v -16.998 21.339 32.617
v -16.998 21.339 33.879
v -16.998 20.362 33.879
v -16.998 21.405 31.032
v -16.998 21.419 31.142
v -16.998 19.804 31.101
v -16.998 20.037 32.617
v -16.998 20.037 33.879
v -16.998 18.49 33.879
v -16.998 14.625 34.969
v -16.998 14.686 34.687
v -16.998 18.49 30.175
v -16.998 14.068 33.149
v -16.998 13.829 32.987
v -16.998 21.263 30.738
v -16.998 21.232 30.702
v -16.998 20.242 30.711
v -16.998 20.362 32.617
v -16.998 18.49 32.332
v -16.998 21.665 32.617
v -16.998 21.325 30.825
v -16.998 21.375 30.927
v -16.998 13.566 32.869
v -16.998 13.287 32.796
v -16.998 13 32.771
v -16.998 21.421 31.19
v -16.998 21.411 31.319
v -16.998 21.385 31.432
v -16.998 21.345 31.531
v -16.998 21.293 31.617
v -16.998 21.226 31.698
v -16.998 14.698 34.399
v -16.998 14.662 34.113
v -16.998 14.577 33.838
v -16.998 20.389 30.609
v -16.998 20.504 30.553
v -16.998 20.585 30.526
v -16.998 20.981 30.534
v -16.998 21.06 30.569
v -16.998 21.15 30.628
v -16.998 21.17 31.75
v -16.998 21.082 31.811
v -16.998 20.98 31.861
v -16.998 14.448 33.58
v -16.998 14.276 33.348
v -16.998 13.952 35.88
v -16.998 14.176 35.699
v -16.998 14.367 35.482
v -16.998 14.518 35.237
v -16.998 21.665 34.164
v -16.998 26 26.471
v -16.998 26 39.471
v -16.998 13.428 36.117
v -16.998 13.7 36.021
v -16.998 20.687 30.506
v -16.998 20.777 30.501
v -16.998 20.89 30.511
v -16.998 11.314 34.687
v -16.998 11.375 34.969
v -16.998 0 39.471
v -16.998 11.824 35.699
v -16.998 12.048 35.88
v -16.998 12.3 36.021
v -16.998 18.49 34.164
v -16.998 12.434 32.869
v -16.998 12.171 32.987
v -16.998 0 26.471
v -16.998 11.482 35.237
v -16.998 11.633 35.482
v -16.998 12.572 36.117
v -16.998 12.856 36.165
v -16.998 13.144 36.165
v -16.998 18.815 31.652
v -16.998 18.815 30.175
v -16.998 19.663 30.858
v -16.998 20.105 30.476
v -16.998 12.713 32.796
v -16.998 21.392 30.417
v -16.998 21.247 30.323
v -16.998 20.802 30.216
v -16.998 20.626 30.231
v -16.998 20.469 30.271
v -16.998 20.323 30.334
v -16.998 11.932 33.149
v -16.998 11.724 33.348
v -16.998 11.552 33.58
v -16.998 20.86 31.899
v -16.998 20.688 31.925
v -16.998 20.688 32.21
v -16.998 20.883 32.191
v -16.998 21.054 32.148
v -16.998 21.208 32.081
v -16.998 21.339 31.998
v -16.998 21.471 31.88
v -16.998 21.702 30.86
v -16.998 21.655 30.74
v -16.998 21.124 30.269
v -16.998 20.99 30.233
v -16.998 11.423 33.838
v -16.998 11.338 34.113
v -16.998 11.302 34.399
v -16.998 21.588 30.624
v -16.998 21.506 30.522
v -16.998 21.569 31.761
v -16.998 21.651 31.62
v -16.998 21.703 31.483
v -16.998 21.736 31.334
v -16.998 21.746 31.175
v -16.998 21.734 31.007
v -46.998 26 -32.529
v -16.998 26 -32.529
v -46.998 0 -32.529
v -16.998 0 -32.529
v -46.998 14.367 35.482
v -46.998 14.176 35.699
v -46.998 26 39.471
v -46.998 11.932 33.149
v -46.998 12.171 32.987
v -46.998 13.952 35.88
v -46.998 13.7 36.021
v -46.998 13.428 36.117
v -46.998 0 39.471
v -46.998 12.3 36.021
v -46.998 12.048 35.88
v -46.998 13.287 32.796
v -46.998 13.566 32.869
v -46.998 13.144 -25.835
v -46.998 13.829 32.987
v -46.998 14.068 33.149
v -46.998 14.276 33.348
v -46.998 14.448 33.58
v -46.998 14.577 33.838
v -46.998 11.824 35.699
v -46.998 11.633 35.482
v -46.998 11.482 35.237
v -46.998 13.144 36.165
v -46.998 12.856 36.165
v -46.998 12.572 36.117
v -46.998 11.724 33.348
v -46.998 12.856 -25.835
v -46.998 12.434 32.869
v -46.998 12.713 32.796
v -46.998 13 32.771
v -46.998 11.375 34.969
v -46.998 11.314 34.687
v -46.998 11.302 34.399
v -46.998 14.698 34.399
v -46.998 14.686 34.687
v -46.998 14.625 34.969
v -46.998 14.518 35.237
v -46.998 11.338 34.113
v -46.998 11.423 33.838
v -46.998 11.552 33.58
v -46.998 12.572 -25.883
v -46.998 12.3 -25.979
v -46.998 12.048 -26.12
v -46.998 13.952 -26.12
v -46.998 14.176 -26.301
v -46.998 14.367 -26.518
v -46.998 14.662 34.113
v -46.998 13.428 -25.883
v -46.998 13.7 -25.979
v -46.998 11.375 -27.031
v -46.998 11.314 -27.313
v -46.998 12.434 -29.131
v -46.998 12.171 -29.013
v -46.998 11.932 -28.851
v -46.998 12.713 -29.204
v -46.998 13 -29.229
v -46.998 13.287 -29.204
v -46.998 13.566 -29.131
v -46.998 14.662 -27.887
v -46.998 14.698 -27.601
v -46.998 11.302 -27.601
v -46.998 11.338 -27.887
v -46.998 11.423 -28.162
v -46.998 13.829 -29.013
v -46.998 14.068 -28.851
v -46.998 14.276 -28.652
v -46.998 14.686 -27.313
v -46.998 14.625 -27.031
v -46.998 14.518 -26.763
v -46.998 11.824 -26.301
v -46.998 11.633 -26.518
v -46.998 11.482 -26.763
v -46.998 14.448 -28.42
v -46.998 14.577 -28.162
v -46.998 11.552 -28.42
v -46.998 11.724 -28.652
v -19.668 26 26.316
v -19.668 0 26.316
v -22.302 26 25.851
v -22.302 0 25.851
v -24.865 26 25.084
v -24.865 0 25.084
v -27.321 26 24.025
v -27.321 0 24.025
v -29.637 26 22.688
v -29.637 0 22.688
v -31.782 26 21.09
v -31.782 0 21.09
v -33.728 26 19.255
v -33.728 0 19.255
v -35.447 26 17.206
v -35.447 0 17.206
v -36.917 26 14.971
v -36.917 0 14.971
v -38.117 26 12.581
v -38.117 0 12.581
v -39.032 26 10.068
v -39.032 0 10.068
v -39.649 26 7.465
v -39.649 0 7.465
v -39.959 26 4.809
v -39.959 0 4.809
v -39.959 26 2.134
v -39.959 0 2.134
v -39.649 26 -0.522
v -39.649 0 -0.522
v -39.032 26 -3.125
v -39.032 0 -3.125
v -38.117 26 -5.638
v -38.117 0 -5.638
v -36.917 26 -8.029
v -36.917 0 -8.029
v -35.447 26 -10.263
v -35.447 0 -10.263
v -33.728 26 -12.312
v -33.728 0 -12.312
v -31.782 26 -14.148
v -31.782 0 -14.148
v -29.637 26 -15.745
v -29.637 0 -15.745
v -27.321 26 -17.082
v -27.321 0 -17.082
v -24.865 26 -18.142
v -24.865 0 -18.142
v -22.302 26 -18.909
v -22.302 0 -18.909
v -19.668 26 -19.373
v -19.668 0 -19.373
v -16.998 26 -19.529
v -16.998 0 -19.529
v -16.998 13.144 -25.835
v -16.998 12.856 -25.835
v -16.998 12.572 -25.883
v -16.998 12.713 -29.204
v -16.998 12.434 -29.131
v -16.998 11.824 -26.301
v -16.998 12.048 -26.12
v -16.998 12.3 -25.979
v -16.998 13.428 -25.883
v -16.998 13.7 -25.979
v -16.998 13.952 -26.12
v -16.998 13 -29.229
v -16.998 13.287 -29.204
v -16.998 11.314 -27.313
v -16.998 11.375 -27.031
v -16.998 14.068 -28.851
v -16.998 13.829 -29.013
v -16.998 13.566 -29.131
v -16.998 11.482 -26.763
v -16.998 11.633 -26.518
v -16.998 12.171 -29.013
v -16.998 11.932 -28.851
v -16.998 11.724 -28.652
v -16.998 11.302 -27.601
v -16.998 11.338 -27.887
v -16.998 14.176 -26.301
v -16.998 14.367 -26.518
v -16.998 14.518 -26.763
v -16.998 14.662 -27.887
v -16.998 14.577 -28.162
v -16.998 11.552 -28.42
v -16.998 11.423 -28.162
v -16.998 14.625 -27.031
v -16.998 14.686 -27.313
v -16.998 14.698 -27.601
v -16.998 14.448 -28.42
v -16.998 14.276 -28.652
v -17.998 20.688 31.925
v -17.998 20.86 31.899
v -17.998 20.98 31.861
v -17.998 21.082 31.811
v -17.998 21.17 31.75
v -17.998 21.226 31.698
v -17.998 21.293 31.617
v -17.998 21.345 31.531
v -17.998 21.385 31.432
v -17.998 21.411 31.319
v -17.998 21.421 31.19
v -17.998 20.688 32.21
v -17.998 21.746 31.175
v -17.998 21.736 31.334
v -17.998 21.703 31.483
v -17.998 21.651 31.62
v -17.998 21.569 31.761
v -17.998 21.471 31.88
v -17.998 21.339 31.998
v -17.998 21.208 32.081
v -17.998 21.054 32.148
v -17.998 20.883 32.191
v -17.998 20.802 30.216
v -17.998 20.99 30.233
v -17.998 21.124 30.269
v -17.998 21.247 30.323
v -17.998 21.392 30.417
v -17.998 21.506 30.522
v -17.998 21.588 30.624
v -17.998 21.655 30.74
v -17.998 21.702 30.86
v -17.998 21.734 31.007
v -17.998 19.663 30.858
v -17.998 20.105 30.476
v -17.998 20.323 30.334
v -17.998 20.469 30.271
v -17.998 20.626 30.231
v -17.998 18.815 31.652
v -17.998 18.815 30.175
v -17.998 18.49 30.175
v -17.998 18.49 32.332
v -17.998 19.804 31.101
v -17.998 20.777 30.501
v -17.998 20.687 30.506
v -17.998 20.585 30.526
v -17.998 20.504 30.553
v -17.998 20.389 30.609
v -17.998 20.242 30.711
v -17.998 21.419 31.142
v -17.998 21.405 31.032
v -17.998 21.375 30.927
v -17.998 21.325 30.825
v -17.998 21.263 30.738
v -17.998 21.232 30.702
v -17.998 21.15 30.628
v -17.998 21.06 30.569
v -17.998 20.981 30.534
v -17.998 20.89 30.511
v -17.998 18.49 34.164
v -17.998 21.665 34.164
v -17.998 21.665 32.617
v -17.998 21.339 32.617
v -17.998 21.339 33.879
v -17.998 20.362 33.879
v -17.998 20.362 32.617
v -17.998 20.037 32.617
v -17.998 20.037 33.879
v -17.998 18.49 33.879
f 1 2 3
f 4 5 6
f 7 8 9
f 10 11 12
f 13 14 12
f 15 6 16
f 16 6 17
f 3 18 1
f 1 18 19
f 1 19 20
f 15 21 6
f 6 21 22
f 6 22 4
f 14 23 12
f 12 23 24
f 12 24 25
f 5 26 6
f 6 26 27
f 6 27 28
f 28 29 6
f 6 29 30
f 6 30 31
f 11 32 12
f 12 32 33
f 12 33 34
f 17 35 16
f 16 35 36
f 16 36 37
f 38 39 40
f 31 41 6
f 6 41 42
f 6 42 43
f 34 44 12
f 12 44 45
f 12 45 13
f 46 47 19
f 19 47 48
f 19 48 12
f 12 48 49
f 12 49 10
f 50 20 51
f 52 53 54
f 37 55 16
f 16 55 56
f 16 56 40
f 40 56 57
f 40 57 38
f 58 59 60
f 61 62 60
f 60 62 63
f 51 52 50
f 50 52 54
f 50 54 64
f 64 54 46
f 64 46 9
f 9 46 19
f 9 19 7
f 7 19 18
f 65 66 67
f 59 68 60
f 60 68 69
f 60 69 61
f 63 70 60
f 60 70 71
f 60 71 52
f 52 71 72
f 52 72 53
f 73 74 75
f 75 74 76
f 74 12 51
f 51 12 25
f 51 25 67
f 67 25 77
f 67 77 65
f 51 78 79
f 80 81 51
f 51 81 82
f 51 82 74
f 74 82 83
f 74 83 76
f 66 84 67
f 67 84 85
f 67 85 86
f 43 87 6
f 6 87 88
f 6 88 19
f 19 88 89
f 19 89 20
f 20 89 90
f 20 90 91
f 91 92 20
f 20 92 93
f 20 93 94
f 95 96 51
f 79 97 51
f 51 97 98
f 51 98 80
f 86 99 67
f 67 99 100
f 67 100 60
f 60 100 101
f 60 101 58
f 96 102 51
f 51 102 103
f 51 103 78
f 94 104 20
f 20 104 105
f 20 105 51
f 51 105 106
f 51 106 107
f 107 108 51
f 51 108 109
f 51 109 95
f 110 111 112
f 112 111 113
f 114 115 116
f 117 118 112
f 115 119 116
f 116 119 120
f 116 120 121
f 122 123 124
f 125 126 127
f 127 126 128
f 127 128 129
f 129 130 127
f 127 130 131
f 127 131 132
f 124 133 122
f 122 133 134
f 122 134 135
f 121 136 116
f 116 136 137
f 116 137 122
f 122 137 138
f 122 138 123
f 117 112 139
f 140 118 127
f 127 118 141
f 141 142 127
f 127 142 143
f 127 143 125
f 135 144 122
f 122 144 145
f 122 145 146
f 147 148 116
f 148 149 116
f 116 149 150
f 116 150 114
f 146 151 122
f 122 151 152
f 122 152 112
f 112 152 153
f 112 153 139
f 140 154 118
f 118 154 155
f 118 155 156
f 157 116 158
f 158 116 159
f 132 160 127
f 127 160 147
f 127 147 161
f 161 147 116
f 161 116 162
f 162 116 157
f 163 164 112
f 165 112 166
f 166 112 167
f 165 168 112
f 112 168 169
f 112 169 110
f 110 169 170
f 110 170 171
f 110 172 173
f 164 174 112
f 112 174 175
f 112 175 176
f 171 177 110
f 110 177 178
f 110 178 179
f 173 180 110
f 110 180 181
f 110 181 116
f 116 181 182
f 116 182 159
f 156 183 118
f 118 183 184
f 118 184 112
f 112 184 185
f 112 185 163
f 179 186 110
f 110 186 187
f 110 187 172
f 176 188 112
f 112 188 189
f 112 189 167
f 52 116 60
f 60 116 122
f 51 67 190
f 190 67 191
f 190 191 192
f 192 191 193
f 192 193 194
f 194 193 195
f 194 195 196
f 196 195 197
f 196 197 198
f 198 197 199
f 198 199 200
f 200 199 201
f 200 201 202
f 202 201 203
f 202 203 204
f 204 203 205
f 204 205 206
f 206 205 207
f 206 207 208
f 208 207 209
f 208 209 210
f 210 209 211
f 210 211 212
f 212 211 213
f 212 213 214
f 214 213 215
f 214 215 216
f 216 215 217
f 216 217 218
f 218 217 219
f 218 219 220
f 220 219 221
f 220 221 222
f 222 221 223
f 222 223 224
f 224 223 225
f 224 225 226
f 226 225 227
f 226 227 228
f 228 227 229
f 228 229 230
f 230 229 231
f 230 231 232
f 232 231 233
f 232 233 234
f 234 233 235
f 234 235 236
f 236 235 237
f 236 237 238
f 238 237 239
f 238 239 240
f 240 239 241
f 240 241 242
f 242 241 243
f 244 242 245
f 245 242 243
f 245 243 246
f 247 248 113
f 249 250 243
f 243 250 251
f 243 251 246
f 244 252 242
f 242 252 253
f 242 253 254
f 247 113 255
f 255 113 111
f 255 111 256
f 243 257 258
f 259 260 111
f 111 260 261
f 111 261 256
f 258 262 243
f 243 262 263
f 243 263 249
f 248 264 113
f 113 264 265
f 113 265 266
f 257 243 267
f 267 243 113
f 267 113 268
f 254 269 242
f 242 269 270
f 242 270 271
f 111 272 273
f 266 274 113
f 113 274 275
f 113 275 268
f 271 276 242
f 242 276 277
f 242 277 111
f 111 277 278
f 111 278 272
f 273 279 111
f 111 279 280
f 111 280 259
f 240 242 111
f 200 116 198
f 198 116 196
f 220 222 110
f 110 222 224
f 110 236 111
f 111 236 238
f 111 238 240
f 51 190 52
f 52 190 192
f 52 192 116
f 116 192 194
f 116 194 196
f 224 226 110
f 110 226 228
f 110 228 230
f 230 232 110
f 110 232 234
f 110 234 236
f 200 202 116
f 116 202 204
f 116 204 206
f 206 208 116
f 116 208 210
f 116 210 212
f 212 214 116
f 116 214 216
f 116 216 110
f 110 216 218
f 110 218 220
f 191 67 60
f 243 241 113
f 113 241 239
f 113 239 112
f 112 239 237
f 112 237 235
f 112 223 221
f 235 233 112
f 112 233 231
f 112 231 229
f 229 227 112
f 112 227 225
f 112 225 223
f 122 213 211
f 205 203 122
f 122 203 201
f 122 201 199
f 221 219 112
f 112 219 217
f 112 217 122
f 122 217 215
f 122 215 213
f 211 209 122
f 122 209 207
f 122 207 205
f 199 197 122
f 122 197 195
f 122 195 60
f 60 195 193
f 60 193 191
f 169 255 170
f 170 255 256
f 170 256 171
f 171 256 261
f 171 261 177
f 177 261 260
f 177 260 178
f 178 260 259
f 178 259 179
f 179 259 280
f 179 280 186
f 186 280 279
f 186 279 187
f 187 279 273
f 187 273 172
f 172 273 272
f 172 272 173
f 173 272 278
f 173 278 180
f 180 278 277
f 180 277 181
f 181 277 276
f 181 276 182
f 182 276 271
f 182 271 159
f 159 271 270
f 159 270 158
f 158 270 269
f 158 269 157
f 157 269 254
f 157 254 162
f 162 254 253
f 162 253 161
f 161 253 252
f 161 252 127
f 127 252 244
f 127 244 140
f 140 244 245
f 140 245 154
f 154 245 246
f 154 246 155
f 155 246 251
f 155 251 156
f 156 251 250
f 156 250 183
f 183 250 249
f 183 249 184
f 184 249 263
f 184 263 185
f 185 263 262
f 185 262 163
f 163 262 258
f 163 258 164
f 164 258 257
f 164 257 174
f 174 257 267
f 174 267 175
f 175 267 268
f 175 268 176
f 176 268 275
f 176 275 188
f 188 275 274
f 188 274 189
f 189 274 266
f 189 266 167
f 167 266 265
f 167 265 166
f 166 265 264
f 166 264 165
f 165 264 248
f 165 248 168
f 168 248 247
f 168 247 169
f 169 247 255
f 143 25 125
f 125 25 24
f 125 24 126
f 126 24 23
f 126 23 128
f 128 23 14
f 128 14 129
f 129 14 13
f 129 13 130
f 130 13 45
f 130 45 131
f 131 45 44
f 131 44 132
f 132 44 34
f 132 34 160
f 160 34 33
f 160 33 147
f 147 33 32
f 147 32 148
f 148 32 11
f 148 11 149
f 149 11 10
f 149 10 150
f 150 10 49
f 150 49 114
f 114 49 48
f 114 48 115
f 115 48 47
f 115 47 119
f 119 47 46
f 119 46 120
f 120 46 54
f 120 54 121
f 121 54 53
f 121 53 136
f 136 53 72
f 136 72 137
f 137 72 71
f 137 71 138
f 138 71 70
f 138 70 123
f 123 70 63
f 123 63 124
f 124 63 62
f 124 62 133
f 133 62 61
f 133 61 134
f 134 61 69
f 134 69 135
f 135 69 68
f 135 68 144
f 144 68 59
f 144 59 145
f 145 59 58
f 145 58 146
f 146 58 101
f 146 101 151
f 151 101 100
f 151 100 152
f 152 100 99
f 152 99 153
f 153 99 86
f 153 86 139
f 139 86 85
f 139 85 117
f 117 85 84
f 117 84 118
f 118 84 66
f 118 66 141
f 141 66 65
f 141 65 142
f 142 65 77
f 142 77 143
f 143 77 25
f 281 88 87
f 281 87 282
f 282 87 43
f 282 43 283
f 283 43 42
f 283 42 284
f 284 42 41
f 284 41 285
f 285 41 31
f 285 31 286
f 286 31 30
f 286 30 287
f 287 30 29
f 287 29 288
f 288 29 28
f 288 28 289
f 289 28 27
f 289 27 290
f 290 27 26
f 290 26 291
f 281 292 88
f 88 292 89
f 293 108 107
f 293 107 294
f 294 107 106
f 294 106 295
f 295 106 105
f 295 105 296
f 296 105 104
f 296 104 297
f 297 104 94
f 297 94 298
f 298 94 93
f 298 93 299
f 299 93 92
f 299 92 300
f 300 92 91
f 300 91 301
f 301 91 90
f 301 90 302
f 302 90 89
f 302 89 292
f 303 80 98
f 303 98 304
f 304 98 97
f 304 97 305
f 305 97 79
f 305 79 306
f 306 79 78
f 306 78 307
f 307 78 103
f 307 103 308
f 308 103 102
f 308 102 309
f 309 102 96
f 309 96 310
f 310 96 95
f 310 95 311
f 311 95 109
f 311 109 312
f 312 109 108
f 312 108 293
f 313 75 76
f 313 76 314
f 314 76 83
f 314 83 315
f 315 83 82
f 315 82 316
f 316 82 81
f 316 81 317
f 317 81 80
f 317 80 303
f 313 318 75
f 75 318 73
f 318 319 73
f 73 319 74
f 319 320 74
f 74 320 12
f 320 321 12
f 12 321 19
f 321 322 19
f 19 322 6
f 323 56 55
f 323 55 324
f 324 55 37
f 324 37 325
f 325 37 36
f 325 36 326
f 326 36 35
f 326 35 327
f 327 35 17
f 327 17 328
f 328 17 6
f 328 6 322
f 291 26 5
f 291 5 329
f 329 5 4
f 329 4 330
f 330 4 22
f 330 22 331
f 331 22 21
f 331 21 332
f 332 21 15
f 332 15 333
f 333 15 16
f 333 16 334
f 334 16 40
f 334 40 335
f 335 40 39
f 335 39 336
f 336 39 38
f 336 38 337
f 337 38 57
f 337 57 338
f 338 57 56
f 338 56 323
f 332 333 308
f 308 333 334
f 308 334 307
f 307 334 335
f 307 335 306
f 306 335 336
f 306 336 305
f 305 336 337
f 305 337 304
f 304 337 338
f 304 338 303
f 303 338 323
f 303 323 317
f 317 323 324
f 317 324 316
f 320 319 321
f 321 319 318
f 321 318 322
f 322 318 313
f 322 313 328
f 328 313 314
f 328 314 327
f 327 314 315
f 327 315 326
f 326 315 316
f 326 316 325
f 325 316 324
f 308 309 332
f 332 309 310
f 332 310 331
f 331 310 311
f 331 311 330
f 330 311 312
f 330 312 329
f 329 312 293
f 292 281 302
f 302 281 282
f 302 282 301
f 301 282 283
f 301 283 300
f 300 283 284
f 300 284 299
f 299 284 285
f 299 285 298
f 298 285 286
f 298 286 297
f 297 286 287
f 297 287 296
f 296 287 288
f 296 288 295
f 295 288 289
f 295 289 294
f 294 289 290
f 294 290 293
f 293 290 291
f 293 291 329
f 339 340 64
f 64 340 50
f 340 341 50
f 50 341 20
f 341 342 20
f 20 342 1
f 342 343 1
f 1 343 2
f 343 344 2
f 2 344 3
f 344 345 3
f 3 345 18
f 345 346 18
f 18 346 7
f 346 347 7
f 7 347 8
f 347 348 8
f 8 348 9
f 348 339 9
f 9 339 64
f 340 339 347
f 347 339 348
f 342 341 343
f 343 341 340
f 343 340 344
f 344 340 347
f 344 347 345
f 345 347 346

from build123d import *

# Parameters (mm, degrees)
BOSS_EXTRUDE1_DEPTH = 26
SKETCH2_R           = 1.7
CUT_EXTRUDE1_DEPTH  = 31
CUT_EXTRUDE2_DEPTH  = 1


with BuildPart() as part:
    # Sketch1 → Boss-Extrude1 (new body)
    with BuildSketch(Plane(origin=(0, 0, 0), x_dir=(1, 0, 0), z_dir=(0, 1, 0))):
        with BuildLine():
            Line((-46.998275301, 32.528571429), (-46.998275301, -39.471428571))
            Line((-46.998275301, -39.471428571), (-16.998275301, -39.471428571))
            Line((-16.998275301, -39.471428571), (-16.998275301, -26.471428571))
            ThreePointArc((-16.998275301, -26.471428571), (-39.998275301, -3.471428571), (-16.998275301, 19.528571429))
            Line((-16.998275301, 19.528571429), (-16.998275301, 32.528571429))
            Line((-16.998275301, 32.528571429), (-46.998275301, 32.528571429))
        make_face()
    extrude(amount=BOSS_EXTRUDE1_DEPTH)

    # Sketch2 → Cut-Extrude1 (cut, through all)
    with BuildSketch(Plane(origin=(-16.998275301, 0, 0), x_dir=(0, 0, -1), z_dir=(1, 0, 0))):
        with Locations((-34.471428571, 13)):
            Circle(SKETCH2_R)
        with Locations((27.528571429, 13)):
            Circle(SKETCH2_R)
    extrude(amount=-CUT_EXTRUDE1_DEPTH, mode=Mode.SUBTRACT)

    # Sketch3 → Cut-Extrude2 (cut)
    with BuildSketch(Plane(origin=(-16.998275301, 0, 0), x_dir=(0, 0, -1), z_dir=(1, 0, 0))):
        Polygon((-34.164231178, 21.664809495), (-32.617436306, 21.664809495), (-32.617436306, 21.33916847), (-33.87929528, 21.33916847), (-33.87929528, 20.362245393), (-32.617436306, 20.362245393), (-32.617436306, 20.036604367), (-33.87929528, 20.036604367), (-33.87929528, 18.489809495), (-34.164231178, 18.489809495), align=None)
        with BuildLine():
            Line((-31.925449127, 20.687886418), (-32.210385024, 20.687886418))
            add(Edge.make_bspline(
                [(-32.210385024, 20.687886418), (-32.208527964, 20.725687867), (-32.204880747, 20.799928905), (-32.187800799, 20.908172734), (-32.163361574, 21.01163673), (-32.128807184, 21.109490152), (-32.085893632, 21.202598213), (-32.034431393, 21.290591084), (-31.973476971, 21.373133091), (-31.904346577, 21.449459042), (-31.829263597, 21.519479196), (-31.748250352, 21.579945023), (-31.663119506, 21.631033196), (-31.574129337, 21.673742608), (-31.480275826, 21.705800897), (-31.382410662, 21.72958767), (-31.280103874, 21.74389907), (-31.210398997, 21.745437389), (-31.174948325, 21.746219752)],
                knots=[0, 0, 0, 0, 0.000113468, 0.000222848, 0.000328209, 0.000432002, 0.000533594, 0.000635367, 0.000737261, 0.00084084, 0.000943908, 0.001044781, 0.001143495, 0.001241361, 0.001340322, 0.001440438, 0.001543158, 0.001649467, 0.001649467, 0.001649467, 0.001649467], degree=3))
            add(Edge.make_bspline(
                [(-31.174948325, 21.746219752), (-31.140133929, 21.745404723), (-31.071724885, 21.743803222), (-30.971882915, 21.730050002), (-30.876834941, 21.708509359), (-30.786766753, 21.678287517), (-30.702396966, 21.637661643), (-30.623091775, 21.58885959), (-30.54790704, 21.532417315), (-30.480228029, 21.465965641), (-30.418081414, 21.395024907), (-30.364467225, 21.319289451), (-30.318553856, 21.241067171), (-30.280283603, 21.159761588), (-30.252111249, 21.074607155), (-30.230722446, 20.986843621), (-30.218632577, 20.895562542), (-30.216777086, 20.833780167), (-30.215833742, 20.802369592)],
                knots=[0, 0, 0, 0, 0.000104402, 0.000205146, 0.000301729, 0.000396461, 0.000489487, 0.000581988, 0.000675485, 0.000770845, 0.000865978, 0.000958102, 0.001048749, 0.001137814, 0.001227115, 0.00131736, 0.00140848, 0.001502716, 0.001502716, 0.001502716, 0.001502716], degree=3))
            add(Edge.make_bspline(
                [(-30.215833742, 20.802369592), (-30.21736377, 20.75814655), (-30.220396976, 20.67047652), (-30.24657322, 20.541476852), (-30.287015551, 20.416377263), (-30.336067513, 20.315703408), (-30.385616171, 20.234988656), (-30.429322129, 20.16793661), (-30.481621049, 20.096429789), (-30.542034416, 20.019747997), (-30.609650855, 19.937656676), (-30.684957018, 19.850122138), (-30.76852818, 19.758074075), (-30.827182388, 19.695203802), (-30.857575529, 19.662626002)],
                knots=[0, 0, 0, 0, 0.00013255, 0.000262774, 0.000393306, 0.000526148, 0.000597485, 0.000677395, 0.000766194, 0.000863145, 0.000970232, 0.001085232, 0.001209518, 0.00134318, 0.00134318, 0.00134318, 0.00134318], degree=3))
            Line((-30.857575529, 19.662626002), (-31.651961546, 18.815450521))
            Line((-31.651961546, 18.815450521), (-30.175128614, 18.815450521))
            Line((-30.175128614, 18.815450521), (-30.175128614, 18.489809495))
            Line((-30.175128614, 18.489809495), (-32.332500409, 18.489809495))
            Line((-32.332500409, 18.489809495), (-31.10117028, 19.803821915))
            add(Edge.make_bspline(
                [(-31.10117028, 19.803821915), (-31.071191126, 19.835116808), (-31.013607306, 19.895227891), (-30.932161682, 19.982987576), (-30.8590106, 20.064403231), (-30.793680537, 20.139321029), (-30.737588714, 20.208836808), (-30.687811761, 20.270699146), (-30.647928689, 20.327626398), (-30.604644008, 20.393612526), (-30.562721325, 20.474177985), (-30.526696545, 20.572633546), (-30.504730218, 20.673986125), (-30.502095118, 20.742477259), (-30.500769639, 20.776928886)],
                knots=[0, 0, 0, 0, 0.000130011, 0.000249724, 0.000359165, 0.000458368, 0.000547868, 0.000627136, 0.000696488, 0.000756294, 0.000863824, 0.000968046, 0.001070082, 0.001173354, 0.001173354, 0.001173354, 0.001173354], degree=3))
            add(Edge.make_bspline(
                [(-30.500769639, 20.776928886), (-30.501346348, 20.798592726), (-30.502482931, 20.841287995), (-30.512513843, 20.903886076), (-30.527672659, 20.964269872), (-30.549394429, 21.022625119), (-30.578066257, 21.078365103), (-30.612967109, 21.131557675), (-30.653235238, 21.182982665), (-30.699818175, 21.231200299), (-30.750991482, 21.275361107), (-30.80505198, 21.314480813), (-30.862247432, 21.347173435), (-30.922336686, 21.373973608), (-30.985152219, 21.394996989), (-31.050815523, 21.409564415), (-31.119145166, 21.418710668), (-31.165802695, 21.419948167), (-31.189576731, 21.420578726)],
                knots=[0, 0, 0, 0, 6.4952e-05, 0.000128007, 0.000189711, 0.000251496, 0.000314359, 0.000377338, 0.000442102, 0.000510025, 0.000578115, 0.000644657, 0.000709898, 0.00077538, 0.000841751, 0.000908254, 0.000976888, 0.001048193, 0.001048193, 0.001048193, 0.001048193], degree=3))
            add(Edge.make_bspline(
                [(-31.189576731, 21.420578726), (-31.214405986, 21.41993009), (-31.263166544, 21.418656275), (-31.334757381, 21.409745715), (-31.403052336, 21.394373417), (-31.468223206, 21.373348863), (-31.530380258, 21.346625751), (-31.589221213, 21.313341097), (-31.644613976, 21.273623213), (-31.69666268, 21.228592137), (-31.744617861, 21.178456528), (-31.786751812, 21.12256749), (-31.823567311, 21.061945477), (-31.855688544, 20.996754063), (-31.881774063, 20.926401706), (-31.90170685, 20.851138145), (-31.917479203, 20.771290178), (-31.922748361, 20.716149422), (-31.925449127, 20.687886418)],
                knots=[0, 0, 0, 0, 7.4482e-05, 0.00014627, 0.000216015, 0.0002842, 0.000351428, 0.000418642, 0.000486589, 0.000555575, 0.000624857, 0.000694312, 0.000765104, 0.000837353, 0.000912017, 0.000989777, 0.001070732, 0.001155858, 0.001155858, 0.001155858, 0.001155858], degree=3))
        make_face()
    extrude(amount=-CUT_EXTRUDE2_DEPTH, mode=Mode.SUBTRACT)


solid = part.part
